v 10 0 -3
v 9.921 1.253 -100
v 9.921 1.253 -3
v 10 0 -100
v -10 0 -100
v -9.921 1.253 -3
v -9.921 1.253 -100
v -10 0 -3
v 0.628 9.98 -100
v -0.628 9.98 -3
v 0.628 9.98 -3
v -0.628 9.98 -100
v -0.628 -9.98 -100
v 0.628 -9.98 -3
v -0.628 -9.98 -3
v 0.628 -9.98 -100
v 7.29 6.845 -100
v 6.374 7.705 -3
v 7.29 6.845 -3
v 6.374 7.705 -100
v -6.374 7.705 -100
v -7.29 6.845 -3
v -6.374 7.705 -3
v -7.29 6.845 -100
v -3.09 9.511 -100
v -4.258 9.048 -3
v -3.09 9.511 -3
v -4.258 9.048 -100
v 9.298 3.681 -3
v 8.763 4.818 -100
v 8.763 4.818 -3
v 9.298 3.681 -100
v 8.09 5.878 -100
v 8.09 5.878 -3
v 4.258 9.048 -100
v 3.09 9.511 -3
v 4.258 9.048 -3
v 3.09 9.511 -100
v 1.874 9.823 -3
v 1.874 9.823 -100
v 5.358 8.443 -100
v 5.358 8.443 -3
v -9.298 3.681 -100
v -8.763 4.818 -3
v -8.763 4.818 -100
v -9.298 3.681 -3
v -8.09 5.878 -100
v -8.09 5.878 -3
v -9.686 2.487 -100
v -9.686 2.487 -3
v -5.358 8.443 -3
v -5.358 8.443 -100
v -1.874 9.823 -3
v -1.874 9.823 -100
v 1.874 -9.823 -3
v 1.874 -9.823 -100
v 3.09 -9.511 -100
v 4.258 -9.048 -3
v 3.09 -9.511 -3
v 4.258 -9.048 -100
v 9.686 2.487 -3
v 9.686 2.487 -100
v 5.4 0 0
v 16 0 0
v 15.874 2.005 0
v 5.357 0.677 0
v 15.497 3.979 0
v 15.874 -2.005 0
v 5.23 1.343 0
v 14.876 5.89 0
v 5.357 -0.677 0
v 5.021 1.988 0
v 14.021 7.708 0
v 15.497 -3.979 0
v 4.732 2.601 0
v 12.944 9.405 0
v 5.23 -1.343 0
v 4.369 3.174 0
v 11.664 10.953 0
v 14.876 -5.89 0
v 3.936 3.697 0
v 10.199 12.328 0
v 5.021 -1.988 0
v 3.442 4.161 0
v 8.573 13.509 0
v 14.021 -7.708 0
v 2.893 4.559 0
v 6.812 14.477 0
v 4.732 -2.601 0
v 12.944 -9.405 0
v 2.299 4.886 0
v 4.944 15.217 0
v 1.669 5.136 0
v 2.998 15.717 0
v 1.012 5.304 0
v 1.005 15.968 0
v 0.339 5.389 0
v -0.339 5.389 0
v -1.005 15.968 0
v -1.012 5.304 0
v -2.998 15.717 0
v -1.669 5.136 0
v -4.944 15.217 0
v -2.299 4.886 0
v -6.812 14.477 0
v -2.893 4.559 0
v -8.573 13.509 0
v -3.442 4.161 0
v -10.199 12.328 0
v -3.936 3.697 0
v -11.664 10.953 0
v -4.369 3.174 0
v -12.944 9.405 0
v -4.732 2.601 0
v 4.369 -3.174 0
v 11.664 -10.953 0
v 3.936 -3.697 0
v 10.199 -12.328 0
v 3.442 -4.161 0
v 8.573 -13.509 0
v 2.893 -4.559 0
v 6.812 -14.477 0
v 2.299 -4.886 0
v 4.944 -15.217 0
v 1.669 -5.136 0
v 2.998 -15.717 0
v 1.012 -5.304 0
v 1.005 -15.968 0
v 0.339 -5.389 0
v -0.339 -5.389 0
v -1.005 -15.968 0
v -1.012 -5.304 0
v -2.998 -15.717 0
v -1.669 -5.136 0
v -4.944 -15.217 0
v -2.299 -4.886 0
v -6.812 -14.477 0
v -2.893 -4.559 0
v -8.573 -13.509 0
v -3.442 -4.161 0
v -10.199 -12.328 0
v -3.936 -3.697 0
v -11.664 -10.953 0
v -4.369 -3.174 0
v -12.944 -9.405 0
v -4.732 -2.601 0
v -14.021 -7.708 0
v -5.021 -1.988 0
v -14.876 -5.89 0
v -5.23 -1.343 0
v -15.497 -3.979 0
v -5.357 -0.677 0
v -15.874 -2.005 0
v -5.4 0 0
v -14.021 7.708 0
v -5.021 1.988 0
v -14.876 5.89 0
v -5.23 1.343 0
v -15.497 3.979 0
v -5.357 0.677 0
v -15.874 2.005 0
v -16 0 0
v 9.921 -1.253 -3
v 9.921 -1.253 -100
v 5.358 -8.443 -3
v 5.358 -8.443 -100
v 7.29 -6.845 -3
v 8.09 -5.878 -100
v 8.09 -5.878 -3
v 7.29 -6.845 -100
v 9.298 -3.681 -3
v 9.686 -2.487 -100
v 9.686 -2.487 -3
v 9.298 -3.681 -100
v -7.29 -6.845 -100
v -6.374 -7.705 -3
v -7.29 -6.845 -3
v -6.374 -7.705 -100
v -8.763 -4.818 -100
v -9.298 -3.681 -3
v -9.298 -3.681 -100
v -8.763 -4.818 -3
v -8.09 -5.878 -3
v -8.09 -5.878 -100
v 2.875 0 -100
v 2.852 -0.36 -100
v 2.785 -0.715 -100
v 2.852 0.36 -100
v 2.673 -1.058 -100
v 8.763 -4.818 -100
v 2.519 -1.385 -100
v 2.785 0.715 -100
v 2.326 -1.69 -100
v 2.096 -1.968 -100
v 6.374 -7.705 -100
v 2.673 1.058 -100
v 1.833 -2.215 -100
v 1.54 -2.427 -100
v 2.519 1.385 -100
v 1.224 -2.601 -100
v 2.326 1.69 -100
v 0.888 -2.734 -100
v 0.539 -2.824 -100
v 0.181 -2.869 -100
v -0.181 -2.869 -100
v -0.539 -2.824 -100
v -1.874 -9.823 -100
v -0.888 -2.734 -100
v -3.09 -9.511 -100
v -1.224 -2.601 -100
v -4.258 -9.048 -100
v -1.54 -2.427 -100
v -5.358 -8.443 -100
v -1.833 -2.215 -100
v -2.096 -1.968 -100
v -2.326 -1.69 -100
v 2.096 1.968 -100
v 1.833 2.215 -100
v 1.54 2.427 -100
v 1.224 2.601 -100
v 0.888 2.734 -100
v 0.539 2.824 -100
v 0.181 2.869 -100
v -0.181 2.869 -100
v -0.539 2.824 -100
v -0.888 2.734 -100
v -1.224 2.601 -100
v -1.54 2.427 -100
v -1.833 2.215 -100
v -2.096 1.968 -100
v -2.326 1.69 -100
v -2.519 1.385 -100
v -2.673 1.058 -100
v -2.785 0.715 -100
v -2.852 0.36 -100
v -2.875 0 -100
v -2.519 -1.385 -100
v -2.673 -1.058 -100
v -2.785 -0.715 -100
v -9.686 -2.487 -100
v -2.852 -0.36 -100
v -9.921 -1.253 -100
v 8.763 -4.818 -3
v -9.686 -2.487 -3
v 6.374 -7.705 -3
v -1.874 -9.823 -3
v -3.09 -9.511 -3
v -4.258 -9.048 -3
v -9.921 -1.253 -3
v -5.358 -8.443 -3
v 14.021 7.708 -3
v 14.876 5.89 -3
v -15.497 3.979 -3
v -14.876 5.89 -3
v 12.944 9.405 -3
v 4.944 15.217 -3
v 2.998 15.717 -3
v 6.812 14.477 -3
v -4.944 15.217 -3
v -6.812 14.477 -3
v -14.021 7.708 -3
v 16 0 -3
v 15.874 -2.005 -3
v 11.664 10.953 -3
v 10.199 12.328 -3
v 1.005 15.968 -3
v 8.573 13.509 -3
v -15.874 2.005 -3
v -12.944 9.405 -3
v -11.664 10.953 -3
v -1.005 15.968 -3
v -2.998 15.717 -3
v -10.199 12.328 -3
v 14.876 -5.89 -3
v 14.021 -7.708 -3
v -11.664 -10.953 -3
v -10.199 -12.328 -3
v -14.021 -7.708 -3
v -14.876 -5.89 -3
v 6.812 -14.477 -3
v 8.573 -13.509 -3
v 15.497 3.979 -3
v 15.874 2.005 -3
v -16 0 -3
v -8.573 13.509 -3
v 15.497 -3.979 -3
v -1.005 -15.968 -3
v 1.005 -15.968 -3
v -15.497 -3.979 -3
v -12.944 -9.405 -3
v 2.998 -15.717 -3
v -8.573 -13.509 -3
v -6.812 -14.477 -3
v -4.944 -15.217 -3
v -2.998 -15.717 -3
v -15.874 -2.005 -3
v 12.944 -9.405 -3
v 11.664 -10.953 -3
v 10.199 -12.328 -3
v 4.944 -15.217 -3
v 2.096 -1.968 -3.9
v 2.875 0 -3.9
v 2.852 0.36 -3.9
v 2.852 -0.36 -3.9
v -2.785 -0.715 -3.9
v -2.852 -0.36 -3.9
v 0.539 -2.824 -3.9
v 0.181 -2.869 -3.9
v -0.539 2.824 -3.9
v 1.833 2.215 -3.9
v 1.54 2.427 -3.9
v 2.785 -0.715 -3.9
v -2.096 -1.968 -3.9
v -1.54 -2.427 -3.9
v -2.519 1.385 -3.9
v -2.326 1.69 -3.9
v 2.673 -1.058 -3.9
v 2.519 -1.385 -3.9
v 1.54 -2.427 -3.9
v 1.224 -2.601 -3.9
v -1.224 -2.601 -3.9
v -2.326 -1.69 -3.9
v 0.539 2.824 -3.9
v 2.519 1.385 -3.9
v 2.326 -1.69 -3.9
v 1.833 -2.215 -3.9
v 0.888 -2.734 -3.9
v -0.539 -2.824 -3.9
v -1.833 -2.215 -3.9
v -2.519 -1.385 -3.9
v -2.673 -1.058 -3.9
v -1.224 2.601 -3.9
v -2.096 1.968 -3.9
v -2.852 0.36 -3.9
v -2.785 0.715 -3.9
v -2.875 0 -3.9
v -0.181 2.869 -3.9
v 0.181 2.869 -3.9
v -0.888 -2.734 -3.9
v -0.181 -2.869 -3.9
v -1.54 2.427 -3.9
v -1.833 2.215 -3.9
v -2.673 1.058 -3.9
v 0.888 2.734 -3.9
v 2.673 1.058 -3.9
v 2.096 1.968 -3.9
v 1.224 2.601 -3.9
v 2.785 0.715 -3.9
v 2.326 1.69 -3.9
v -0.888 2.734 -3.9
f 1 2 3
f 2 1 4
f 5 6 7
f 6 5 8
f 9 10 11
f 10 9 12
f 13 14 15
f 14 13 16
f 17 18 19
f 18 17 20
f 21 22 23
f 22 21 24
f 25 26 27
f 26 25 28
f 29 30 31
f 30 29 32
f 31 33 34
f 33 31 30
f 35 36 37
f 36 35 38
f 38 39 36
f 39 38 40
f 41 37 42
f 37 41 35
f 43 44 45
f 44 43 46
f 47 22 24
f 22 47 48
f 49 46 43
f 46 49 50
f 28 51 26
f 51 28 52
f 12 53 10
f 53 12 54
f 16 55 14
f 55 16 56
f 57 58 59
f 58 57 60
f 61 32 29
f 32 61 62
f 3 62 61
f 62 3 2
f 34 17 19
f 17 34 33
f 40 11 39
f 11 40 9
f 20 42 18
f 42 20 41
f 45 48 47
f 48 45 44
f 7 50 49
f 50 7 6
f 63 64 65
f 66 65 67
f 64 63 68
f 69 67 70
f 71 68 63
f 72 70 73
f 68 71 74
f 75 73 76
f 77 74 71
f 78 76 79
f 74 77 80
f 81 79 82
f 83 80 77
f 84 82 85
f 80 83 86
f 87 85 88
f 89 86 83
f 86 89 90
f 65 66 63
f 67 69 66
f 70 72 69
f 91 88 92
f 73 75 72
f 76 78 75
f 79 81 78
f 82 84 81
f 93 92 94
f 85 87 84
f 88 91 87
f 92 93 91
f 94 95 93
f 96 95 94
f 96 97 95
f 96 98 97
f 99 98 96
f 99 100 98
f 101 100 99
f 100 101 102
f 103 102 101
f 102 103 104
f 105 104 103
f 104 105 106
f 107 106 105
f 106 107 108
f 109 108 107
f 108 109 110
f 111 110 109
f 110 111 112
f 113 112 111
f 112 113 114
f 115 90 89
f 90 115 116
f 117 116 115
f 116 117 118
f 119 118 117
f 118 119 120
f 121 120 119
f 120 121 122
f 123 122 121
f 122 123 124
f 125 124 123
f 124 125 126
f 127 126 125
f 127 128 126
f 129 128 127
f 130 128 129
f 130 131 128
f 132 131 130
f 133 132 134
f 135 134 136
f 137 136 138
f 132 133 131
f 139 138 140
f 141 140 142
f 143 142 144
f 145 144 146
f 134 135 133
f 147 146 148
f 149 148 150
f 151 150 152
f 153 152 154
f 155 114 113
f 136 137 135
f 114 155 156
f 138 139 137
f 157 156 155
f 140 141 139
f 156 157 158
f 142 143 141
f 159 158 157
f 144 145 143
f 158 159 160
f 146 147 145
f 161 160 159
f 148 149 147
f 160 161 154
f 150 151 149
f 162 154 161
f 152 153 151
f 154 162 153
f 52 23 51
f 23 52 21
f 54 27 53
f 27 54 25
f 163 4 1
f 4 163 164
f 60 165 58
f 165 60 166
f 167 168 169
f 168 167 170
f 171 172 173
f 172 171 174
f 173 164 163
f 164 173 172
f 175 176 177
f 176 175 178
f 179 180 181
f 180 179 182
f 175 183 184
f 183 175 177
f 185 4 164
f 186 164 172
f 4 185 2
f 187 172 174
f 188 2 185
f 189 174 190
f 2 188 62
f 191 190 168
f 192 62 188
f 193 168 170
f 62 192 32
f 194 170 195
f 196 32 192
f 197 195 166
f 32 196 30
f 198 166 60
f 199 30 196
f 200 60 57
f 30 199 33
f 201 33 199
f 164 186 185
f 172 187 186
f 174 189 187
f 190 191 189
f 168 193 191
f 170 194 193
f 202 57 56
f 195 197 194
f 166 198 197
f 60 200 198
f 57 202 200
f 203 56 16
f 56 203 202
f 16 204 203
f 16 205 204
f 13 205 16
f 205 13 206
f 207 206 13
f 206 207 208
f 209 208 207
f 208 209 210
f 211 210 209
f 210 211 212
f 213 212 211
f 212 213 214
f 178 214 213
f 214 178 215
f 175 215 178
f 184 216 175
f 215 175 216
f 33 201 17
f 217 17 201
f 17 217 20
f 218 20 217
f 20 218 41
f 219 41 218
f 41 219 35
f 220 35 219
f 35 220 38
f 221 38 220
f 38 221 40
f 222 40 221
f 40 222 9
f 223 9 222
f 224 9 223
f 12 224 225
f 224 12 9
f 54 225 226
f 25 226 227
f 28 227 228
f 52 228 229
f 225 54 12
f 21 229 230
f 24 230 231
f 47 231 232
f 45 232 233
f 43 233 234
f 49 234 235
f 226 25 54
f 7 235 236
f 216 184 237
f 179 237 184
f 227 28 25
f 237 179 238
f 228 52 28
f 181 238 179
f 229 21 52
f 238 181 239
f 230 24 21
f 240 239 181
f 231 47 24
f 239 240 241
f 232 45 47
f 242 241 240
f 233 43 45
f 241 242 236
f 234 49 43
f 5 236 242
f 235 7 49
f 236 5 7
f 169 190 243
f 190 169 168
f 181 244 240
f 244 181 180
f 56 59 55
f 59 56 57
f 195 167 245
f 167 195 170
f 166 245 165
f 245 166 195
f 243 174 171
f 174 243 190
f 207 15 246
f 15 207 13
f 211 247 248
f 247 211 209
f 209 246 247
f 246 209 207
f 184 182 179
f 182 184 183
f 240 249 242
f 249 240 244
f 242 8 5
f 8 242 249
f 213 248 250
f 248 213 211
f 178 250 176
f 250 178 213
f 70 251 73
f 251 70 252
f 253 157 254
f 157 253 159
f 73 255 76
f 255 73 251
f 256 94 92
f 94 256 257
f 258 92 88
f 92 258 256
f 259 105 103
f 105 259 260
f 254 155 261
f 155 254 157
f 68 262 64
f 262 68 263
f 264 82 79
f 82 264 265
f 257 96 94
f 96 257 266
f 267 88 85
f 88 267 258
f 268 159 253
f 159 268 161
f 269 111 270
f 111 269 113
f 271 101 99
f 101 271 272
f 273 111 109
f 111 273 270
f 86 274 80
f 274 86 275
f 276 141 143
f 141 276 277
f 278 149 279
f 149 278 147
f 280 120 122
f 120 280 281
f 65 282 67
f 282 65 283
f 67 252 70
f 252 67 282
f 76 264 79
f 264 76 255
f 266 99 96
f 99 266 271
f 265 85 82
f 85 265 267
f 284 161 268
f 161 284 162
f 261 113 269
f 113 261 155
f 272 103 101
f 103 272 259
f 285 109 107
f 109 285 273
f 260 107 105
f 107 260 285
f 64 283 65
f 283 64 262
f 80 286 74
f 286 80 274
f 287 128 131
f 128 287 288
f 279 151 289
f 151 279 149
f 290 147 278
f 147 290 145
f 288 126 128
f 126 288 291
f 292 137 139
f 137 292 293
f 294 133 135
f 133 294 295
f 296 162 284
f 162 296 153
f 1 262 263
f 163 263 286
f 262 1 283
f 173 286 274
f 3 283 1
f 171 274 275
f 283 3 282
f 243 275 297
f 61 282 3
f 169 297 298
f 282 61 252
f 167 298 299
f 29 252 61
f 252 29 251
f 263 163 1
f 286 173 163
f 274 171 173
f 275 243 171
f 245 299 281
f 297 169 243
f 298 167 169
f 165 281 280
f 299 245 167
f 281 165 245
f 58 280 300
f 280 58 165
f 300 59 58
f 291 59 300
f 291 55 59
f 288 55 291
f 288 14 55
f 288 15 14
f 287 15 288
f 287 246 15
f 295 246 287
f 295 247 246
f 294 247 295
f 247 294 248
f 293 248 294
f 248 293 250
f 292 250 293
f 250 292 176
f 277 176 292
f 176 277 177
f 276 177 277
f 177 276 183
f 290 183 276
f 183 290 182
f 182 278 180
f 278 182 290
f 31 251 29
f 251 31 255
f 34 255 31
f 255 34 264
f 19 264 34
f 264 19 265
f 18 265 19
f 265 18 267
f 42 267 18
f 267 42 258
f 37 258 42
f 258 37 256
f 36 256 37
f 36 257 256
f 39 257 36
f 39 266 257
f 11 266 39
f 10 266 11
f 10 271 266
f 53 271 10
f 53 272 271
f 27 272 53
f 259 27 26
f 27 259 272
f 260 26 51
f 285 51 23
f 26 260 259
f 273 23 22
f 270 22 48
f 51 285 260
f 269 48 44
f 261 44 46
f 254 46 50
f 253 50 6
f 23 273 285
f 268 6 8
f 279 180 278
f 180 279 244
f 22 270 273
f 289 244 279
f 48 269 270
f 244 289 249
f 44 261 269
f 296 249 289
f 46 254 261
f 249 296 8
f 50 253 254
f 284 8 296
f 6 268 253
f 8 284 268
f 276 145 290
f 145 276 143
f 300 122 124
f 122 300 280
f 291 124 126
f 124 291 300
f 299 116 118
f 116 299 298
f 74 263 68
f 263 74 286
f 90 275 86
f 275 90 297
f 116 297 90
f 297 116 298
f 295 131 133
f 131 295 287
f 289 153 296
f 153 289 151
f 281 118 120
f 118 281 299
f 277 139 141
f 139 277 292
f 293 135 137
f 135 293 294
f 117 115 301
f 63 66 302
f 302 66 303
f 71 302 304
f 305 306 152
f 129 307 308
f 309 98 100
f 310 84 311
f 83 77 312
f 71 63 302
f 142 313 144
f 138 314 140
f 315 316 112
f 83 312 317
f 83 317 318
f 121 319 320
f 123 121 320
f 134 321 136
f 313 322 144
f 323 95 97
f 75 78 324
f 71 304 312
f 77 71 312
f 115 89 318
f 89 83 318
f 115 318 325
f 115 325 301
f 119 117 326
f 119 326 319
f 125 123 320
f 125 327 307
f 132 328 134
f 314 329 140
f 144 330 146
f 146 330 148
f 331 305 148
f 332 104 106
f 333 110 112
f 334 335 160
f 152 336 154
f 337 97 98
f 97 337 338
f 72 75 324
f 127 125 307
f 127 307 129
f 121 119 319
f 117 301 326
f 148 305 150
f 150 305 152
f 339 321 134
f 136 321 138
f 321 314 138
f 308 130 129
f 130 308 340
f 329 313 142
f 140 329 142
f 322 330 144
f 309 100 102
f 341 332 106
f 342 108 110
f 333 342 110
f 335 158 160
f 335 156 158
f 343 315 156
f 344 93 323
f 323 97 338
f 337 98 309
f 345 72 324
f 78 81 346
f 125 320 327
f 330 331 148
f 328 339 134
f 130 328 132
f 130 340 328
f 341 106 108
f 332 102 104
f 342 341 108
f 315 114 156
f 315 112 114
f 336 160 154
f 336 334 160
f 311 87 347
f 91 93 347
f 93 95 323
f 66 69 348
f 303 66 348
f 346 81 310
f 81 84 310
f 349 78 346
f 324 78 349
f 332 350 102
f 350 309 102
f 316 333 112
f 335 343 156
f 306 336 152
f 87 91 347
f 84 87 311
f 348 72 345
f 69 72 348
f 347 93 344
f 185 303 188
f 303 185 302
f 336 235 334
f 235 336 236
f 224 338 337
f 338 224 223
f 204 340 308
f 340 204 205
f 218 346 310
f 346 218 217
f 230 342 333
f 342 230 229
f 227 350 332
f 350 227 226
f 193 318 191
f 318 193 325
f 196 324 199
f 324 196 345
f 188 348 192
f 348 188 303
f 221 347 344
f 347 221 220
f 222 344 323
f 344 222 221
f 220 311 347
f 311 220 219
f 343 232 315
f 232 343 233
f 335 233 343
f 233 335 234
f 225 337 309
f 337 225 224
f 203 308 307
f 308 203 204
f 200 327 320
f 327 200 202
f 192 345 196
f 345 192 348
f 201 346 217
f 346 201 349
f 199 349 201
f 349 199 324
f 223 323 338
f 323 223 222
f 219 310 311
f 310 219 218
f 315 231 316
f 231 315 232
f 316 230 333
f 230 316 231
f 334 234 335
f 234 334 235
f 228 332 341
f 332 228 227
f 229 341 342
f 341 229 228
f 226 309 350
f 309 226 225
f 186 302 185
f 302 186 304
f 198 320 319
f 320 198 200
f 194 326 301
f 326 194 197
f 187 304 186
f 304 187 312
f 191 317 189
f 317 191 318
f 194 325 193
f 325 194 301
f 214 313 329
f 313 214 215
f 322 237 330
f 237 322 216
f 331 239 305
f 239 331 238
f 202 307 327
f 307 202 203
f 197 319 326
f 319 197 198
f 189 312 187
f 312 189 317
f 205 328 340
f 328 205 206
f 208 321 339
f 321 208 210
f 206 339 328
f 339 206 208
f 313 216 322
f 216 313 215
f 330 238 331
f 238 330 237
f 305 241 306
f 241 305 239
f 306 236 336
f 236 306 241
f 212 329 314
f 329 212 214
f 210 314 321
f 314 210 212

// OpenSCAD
$fn = 50;


difference() {
	union() {
		translate(v = [0, 0, -100.0000000000]) {
			cylinder(h = 100, r = 10.0000000000);
		}
		translate(v = [0, 0, -3.0000000000]) {
			cylinder(h = 3, r = 16.0000000000);
		}
	}
	union() {
		translate(v = [0, 0, 0]) {
			rotate(a = [0, 0, 0]) {
				difference() {
					union() {
						#translate(v = [0, 0, -100.0000000000]) {
							cylinder(h = 100, r = 2.6000000000);
						}
						#translate(v = [0, 0, -3.9000000000]) {
							cylinder(h = 3.9000000000, r = 10.0000000000, r1 = 2.8750000000, r2 = 5.4000000000);
						}
						#translate(v = [0, 0, -100.0000000000]) {
							cylinder(h = 100, r = 2.8750000000);
						}
						#translate(v = [0, 0, -100.0000000000]) {
							cylinder(h = 100, r = 2.6000000000);
						}
					}
					union();
				}
			}
		}
	}
}
